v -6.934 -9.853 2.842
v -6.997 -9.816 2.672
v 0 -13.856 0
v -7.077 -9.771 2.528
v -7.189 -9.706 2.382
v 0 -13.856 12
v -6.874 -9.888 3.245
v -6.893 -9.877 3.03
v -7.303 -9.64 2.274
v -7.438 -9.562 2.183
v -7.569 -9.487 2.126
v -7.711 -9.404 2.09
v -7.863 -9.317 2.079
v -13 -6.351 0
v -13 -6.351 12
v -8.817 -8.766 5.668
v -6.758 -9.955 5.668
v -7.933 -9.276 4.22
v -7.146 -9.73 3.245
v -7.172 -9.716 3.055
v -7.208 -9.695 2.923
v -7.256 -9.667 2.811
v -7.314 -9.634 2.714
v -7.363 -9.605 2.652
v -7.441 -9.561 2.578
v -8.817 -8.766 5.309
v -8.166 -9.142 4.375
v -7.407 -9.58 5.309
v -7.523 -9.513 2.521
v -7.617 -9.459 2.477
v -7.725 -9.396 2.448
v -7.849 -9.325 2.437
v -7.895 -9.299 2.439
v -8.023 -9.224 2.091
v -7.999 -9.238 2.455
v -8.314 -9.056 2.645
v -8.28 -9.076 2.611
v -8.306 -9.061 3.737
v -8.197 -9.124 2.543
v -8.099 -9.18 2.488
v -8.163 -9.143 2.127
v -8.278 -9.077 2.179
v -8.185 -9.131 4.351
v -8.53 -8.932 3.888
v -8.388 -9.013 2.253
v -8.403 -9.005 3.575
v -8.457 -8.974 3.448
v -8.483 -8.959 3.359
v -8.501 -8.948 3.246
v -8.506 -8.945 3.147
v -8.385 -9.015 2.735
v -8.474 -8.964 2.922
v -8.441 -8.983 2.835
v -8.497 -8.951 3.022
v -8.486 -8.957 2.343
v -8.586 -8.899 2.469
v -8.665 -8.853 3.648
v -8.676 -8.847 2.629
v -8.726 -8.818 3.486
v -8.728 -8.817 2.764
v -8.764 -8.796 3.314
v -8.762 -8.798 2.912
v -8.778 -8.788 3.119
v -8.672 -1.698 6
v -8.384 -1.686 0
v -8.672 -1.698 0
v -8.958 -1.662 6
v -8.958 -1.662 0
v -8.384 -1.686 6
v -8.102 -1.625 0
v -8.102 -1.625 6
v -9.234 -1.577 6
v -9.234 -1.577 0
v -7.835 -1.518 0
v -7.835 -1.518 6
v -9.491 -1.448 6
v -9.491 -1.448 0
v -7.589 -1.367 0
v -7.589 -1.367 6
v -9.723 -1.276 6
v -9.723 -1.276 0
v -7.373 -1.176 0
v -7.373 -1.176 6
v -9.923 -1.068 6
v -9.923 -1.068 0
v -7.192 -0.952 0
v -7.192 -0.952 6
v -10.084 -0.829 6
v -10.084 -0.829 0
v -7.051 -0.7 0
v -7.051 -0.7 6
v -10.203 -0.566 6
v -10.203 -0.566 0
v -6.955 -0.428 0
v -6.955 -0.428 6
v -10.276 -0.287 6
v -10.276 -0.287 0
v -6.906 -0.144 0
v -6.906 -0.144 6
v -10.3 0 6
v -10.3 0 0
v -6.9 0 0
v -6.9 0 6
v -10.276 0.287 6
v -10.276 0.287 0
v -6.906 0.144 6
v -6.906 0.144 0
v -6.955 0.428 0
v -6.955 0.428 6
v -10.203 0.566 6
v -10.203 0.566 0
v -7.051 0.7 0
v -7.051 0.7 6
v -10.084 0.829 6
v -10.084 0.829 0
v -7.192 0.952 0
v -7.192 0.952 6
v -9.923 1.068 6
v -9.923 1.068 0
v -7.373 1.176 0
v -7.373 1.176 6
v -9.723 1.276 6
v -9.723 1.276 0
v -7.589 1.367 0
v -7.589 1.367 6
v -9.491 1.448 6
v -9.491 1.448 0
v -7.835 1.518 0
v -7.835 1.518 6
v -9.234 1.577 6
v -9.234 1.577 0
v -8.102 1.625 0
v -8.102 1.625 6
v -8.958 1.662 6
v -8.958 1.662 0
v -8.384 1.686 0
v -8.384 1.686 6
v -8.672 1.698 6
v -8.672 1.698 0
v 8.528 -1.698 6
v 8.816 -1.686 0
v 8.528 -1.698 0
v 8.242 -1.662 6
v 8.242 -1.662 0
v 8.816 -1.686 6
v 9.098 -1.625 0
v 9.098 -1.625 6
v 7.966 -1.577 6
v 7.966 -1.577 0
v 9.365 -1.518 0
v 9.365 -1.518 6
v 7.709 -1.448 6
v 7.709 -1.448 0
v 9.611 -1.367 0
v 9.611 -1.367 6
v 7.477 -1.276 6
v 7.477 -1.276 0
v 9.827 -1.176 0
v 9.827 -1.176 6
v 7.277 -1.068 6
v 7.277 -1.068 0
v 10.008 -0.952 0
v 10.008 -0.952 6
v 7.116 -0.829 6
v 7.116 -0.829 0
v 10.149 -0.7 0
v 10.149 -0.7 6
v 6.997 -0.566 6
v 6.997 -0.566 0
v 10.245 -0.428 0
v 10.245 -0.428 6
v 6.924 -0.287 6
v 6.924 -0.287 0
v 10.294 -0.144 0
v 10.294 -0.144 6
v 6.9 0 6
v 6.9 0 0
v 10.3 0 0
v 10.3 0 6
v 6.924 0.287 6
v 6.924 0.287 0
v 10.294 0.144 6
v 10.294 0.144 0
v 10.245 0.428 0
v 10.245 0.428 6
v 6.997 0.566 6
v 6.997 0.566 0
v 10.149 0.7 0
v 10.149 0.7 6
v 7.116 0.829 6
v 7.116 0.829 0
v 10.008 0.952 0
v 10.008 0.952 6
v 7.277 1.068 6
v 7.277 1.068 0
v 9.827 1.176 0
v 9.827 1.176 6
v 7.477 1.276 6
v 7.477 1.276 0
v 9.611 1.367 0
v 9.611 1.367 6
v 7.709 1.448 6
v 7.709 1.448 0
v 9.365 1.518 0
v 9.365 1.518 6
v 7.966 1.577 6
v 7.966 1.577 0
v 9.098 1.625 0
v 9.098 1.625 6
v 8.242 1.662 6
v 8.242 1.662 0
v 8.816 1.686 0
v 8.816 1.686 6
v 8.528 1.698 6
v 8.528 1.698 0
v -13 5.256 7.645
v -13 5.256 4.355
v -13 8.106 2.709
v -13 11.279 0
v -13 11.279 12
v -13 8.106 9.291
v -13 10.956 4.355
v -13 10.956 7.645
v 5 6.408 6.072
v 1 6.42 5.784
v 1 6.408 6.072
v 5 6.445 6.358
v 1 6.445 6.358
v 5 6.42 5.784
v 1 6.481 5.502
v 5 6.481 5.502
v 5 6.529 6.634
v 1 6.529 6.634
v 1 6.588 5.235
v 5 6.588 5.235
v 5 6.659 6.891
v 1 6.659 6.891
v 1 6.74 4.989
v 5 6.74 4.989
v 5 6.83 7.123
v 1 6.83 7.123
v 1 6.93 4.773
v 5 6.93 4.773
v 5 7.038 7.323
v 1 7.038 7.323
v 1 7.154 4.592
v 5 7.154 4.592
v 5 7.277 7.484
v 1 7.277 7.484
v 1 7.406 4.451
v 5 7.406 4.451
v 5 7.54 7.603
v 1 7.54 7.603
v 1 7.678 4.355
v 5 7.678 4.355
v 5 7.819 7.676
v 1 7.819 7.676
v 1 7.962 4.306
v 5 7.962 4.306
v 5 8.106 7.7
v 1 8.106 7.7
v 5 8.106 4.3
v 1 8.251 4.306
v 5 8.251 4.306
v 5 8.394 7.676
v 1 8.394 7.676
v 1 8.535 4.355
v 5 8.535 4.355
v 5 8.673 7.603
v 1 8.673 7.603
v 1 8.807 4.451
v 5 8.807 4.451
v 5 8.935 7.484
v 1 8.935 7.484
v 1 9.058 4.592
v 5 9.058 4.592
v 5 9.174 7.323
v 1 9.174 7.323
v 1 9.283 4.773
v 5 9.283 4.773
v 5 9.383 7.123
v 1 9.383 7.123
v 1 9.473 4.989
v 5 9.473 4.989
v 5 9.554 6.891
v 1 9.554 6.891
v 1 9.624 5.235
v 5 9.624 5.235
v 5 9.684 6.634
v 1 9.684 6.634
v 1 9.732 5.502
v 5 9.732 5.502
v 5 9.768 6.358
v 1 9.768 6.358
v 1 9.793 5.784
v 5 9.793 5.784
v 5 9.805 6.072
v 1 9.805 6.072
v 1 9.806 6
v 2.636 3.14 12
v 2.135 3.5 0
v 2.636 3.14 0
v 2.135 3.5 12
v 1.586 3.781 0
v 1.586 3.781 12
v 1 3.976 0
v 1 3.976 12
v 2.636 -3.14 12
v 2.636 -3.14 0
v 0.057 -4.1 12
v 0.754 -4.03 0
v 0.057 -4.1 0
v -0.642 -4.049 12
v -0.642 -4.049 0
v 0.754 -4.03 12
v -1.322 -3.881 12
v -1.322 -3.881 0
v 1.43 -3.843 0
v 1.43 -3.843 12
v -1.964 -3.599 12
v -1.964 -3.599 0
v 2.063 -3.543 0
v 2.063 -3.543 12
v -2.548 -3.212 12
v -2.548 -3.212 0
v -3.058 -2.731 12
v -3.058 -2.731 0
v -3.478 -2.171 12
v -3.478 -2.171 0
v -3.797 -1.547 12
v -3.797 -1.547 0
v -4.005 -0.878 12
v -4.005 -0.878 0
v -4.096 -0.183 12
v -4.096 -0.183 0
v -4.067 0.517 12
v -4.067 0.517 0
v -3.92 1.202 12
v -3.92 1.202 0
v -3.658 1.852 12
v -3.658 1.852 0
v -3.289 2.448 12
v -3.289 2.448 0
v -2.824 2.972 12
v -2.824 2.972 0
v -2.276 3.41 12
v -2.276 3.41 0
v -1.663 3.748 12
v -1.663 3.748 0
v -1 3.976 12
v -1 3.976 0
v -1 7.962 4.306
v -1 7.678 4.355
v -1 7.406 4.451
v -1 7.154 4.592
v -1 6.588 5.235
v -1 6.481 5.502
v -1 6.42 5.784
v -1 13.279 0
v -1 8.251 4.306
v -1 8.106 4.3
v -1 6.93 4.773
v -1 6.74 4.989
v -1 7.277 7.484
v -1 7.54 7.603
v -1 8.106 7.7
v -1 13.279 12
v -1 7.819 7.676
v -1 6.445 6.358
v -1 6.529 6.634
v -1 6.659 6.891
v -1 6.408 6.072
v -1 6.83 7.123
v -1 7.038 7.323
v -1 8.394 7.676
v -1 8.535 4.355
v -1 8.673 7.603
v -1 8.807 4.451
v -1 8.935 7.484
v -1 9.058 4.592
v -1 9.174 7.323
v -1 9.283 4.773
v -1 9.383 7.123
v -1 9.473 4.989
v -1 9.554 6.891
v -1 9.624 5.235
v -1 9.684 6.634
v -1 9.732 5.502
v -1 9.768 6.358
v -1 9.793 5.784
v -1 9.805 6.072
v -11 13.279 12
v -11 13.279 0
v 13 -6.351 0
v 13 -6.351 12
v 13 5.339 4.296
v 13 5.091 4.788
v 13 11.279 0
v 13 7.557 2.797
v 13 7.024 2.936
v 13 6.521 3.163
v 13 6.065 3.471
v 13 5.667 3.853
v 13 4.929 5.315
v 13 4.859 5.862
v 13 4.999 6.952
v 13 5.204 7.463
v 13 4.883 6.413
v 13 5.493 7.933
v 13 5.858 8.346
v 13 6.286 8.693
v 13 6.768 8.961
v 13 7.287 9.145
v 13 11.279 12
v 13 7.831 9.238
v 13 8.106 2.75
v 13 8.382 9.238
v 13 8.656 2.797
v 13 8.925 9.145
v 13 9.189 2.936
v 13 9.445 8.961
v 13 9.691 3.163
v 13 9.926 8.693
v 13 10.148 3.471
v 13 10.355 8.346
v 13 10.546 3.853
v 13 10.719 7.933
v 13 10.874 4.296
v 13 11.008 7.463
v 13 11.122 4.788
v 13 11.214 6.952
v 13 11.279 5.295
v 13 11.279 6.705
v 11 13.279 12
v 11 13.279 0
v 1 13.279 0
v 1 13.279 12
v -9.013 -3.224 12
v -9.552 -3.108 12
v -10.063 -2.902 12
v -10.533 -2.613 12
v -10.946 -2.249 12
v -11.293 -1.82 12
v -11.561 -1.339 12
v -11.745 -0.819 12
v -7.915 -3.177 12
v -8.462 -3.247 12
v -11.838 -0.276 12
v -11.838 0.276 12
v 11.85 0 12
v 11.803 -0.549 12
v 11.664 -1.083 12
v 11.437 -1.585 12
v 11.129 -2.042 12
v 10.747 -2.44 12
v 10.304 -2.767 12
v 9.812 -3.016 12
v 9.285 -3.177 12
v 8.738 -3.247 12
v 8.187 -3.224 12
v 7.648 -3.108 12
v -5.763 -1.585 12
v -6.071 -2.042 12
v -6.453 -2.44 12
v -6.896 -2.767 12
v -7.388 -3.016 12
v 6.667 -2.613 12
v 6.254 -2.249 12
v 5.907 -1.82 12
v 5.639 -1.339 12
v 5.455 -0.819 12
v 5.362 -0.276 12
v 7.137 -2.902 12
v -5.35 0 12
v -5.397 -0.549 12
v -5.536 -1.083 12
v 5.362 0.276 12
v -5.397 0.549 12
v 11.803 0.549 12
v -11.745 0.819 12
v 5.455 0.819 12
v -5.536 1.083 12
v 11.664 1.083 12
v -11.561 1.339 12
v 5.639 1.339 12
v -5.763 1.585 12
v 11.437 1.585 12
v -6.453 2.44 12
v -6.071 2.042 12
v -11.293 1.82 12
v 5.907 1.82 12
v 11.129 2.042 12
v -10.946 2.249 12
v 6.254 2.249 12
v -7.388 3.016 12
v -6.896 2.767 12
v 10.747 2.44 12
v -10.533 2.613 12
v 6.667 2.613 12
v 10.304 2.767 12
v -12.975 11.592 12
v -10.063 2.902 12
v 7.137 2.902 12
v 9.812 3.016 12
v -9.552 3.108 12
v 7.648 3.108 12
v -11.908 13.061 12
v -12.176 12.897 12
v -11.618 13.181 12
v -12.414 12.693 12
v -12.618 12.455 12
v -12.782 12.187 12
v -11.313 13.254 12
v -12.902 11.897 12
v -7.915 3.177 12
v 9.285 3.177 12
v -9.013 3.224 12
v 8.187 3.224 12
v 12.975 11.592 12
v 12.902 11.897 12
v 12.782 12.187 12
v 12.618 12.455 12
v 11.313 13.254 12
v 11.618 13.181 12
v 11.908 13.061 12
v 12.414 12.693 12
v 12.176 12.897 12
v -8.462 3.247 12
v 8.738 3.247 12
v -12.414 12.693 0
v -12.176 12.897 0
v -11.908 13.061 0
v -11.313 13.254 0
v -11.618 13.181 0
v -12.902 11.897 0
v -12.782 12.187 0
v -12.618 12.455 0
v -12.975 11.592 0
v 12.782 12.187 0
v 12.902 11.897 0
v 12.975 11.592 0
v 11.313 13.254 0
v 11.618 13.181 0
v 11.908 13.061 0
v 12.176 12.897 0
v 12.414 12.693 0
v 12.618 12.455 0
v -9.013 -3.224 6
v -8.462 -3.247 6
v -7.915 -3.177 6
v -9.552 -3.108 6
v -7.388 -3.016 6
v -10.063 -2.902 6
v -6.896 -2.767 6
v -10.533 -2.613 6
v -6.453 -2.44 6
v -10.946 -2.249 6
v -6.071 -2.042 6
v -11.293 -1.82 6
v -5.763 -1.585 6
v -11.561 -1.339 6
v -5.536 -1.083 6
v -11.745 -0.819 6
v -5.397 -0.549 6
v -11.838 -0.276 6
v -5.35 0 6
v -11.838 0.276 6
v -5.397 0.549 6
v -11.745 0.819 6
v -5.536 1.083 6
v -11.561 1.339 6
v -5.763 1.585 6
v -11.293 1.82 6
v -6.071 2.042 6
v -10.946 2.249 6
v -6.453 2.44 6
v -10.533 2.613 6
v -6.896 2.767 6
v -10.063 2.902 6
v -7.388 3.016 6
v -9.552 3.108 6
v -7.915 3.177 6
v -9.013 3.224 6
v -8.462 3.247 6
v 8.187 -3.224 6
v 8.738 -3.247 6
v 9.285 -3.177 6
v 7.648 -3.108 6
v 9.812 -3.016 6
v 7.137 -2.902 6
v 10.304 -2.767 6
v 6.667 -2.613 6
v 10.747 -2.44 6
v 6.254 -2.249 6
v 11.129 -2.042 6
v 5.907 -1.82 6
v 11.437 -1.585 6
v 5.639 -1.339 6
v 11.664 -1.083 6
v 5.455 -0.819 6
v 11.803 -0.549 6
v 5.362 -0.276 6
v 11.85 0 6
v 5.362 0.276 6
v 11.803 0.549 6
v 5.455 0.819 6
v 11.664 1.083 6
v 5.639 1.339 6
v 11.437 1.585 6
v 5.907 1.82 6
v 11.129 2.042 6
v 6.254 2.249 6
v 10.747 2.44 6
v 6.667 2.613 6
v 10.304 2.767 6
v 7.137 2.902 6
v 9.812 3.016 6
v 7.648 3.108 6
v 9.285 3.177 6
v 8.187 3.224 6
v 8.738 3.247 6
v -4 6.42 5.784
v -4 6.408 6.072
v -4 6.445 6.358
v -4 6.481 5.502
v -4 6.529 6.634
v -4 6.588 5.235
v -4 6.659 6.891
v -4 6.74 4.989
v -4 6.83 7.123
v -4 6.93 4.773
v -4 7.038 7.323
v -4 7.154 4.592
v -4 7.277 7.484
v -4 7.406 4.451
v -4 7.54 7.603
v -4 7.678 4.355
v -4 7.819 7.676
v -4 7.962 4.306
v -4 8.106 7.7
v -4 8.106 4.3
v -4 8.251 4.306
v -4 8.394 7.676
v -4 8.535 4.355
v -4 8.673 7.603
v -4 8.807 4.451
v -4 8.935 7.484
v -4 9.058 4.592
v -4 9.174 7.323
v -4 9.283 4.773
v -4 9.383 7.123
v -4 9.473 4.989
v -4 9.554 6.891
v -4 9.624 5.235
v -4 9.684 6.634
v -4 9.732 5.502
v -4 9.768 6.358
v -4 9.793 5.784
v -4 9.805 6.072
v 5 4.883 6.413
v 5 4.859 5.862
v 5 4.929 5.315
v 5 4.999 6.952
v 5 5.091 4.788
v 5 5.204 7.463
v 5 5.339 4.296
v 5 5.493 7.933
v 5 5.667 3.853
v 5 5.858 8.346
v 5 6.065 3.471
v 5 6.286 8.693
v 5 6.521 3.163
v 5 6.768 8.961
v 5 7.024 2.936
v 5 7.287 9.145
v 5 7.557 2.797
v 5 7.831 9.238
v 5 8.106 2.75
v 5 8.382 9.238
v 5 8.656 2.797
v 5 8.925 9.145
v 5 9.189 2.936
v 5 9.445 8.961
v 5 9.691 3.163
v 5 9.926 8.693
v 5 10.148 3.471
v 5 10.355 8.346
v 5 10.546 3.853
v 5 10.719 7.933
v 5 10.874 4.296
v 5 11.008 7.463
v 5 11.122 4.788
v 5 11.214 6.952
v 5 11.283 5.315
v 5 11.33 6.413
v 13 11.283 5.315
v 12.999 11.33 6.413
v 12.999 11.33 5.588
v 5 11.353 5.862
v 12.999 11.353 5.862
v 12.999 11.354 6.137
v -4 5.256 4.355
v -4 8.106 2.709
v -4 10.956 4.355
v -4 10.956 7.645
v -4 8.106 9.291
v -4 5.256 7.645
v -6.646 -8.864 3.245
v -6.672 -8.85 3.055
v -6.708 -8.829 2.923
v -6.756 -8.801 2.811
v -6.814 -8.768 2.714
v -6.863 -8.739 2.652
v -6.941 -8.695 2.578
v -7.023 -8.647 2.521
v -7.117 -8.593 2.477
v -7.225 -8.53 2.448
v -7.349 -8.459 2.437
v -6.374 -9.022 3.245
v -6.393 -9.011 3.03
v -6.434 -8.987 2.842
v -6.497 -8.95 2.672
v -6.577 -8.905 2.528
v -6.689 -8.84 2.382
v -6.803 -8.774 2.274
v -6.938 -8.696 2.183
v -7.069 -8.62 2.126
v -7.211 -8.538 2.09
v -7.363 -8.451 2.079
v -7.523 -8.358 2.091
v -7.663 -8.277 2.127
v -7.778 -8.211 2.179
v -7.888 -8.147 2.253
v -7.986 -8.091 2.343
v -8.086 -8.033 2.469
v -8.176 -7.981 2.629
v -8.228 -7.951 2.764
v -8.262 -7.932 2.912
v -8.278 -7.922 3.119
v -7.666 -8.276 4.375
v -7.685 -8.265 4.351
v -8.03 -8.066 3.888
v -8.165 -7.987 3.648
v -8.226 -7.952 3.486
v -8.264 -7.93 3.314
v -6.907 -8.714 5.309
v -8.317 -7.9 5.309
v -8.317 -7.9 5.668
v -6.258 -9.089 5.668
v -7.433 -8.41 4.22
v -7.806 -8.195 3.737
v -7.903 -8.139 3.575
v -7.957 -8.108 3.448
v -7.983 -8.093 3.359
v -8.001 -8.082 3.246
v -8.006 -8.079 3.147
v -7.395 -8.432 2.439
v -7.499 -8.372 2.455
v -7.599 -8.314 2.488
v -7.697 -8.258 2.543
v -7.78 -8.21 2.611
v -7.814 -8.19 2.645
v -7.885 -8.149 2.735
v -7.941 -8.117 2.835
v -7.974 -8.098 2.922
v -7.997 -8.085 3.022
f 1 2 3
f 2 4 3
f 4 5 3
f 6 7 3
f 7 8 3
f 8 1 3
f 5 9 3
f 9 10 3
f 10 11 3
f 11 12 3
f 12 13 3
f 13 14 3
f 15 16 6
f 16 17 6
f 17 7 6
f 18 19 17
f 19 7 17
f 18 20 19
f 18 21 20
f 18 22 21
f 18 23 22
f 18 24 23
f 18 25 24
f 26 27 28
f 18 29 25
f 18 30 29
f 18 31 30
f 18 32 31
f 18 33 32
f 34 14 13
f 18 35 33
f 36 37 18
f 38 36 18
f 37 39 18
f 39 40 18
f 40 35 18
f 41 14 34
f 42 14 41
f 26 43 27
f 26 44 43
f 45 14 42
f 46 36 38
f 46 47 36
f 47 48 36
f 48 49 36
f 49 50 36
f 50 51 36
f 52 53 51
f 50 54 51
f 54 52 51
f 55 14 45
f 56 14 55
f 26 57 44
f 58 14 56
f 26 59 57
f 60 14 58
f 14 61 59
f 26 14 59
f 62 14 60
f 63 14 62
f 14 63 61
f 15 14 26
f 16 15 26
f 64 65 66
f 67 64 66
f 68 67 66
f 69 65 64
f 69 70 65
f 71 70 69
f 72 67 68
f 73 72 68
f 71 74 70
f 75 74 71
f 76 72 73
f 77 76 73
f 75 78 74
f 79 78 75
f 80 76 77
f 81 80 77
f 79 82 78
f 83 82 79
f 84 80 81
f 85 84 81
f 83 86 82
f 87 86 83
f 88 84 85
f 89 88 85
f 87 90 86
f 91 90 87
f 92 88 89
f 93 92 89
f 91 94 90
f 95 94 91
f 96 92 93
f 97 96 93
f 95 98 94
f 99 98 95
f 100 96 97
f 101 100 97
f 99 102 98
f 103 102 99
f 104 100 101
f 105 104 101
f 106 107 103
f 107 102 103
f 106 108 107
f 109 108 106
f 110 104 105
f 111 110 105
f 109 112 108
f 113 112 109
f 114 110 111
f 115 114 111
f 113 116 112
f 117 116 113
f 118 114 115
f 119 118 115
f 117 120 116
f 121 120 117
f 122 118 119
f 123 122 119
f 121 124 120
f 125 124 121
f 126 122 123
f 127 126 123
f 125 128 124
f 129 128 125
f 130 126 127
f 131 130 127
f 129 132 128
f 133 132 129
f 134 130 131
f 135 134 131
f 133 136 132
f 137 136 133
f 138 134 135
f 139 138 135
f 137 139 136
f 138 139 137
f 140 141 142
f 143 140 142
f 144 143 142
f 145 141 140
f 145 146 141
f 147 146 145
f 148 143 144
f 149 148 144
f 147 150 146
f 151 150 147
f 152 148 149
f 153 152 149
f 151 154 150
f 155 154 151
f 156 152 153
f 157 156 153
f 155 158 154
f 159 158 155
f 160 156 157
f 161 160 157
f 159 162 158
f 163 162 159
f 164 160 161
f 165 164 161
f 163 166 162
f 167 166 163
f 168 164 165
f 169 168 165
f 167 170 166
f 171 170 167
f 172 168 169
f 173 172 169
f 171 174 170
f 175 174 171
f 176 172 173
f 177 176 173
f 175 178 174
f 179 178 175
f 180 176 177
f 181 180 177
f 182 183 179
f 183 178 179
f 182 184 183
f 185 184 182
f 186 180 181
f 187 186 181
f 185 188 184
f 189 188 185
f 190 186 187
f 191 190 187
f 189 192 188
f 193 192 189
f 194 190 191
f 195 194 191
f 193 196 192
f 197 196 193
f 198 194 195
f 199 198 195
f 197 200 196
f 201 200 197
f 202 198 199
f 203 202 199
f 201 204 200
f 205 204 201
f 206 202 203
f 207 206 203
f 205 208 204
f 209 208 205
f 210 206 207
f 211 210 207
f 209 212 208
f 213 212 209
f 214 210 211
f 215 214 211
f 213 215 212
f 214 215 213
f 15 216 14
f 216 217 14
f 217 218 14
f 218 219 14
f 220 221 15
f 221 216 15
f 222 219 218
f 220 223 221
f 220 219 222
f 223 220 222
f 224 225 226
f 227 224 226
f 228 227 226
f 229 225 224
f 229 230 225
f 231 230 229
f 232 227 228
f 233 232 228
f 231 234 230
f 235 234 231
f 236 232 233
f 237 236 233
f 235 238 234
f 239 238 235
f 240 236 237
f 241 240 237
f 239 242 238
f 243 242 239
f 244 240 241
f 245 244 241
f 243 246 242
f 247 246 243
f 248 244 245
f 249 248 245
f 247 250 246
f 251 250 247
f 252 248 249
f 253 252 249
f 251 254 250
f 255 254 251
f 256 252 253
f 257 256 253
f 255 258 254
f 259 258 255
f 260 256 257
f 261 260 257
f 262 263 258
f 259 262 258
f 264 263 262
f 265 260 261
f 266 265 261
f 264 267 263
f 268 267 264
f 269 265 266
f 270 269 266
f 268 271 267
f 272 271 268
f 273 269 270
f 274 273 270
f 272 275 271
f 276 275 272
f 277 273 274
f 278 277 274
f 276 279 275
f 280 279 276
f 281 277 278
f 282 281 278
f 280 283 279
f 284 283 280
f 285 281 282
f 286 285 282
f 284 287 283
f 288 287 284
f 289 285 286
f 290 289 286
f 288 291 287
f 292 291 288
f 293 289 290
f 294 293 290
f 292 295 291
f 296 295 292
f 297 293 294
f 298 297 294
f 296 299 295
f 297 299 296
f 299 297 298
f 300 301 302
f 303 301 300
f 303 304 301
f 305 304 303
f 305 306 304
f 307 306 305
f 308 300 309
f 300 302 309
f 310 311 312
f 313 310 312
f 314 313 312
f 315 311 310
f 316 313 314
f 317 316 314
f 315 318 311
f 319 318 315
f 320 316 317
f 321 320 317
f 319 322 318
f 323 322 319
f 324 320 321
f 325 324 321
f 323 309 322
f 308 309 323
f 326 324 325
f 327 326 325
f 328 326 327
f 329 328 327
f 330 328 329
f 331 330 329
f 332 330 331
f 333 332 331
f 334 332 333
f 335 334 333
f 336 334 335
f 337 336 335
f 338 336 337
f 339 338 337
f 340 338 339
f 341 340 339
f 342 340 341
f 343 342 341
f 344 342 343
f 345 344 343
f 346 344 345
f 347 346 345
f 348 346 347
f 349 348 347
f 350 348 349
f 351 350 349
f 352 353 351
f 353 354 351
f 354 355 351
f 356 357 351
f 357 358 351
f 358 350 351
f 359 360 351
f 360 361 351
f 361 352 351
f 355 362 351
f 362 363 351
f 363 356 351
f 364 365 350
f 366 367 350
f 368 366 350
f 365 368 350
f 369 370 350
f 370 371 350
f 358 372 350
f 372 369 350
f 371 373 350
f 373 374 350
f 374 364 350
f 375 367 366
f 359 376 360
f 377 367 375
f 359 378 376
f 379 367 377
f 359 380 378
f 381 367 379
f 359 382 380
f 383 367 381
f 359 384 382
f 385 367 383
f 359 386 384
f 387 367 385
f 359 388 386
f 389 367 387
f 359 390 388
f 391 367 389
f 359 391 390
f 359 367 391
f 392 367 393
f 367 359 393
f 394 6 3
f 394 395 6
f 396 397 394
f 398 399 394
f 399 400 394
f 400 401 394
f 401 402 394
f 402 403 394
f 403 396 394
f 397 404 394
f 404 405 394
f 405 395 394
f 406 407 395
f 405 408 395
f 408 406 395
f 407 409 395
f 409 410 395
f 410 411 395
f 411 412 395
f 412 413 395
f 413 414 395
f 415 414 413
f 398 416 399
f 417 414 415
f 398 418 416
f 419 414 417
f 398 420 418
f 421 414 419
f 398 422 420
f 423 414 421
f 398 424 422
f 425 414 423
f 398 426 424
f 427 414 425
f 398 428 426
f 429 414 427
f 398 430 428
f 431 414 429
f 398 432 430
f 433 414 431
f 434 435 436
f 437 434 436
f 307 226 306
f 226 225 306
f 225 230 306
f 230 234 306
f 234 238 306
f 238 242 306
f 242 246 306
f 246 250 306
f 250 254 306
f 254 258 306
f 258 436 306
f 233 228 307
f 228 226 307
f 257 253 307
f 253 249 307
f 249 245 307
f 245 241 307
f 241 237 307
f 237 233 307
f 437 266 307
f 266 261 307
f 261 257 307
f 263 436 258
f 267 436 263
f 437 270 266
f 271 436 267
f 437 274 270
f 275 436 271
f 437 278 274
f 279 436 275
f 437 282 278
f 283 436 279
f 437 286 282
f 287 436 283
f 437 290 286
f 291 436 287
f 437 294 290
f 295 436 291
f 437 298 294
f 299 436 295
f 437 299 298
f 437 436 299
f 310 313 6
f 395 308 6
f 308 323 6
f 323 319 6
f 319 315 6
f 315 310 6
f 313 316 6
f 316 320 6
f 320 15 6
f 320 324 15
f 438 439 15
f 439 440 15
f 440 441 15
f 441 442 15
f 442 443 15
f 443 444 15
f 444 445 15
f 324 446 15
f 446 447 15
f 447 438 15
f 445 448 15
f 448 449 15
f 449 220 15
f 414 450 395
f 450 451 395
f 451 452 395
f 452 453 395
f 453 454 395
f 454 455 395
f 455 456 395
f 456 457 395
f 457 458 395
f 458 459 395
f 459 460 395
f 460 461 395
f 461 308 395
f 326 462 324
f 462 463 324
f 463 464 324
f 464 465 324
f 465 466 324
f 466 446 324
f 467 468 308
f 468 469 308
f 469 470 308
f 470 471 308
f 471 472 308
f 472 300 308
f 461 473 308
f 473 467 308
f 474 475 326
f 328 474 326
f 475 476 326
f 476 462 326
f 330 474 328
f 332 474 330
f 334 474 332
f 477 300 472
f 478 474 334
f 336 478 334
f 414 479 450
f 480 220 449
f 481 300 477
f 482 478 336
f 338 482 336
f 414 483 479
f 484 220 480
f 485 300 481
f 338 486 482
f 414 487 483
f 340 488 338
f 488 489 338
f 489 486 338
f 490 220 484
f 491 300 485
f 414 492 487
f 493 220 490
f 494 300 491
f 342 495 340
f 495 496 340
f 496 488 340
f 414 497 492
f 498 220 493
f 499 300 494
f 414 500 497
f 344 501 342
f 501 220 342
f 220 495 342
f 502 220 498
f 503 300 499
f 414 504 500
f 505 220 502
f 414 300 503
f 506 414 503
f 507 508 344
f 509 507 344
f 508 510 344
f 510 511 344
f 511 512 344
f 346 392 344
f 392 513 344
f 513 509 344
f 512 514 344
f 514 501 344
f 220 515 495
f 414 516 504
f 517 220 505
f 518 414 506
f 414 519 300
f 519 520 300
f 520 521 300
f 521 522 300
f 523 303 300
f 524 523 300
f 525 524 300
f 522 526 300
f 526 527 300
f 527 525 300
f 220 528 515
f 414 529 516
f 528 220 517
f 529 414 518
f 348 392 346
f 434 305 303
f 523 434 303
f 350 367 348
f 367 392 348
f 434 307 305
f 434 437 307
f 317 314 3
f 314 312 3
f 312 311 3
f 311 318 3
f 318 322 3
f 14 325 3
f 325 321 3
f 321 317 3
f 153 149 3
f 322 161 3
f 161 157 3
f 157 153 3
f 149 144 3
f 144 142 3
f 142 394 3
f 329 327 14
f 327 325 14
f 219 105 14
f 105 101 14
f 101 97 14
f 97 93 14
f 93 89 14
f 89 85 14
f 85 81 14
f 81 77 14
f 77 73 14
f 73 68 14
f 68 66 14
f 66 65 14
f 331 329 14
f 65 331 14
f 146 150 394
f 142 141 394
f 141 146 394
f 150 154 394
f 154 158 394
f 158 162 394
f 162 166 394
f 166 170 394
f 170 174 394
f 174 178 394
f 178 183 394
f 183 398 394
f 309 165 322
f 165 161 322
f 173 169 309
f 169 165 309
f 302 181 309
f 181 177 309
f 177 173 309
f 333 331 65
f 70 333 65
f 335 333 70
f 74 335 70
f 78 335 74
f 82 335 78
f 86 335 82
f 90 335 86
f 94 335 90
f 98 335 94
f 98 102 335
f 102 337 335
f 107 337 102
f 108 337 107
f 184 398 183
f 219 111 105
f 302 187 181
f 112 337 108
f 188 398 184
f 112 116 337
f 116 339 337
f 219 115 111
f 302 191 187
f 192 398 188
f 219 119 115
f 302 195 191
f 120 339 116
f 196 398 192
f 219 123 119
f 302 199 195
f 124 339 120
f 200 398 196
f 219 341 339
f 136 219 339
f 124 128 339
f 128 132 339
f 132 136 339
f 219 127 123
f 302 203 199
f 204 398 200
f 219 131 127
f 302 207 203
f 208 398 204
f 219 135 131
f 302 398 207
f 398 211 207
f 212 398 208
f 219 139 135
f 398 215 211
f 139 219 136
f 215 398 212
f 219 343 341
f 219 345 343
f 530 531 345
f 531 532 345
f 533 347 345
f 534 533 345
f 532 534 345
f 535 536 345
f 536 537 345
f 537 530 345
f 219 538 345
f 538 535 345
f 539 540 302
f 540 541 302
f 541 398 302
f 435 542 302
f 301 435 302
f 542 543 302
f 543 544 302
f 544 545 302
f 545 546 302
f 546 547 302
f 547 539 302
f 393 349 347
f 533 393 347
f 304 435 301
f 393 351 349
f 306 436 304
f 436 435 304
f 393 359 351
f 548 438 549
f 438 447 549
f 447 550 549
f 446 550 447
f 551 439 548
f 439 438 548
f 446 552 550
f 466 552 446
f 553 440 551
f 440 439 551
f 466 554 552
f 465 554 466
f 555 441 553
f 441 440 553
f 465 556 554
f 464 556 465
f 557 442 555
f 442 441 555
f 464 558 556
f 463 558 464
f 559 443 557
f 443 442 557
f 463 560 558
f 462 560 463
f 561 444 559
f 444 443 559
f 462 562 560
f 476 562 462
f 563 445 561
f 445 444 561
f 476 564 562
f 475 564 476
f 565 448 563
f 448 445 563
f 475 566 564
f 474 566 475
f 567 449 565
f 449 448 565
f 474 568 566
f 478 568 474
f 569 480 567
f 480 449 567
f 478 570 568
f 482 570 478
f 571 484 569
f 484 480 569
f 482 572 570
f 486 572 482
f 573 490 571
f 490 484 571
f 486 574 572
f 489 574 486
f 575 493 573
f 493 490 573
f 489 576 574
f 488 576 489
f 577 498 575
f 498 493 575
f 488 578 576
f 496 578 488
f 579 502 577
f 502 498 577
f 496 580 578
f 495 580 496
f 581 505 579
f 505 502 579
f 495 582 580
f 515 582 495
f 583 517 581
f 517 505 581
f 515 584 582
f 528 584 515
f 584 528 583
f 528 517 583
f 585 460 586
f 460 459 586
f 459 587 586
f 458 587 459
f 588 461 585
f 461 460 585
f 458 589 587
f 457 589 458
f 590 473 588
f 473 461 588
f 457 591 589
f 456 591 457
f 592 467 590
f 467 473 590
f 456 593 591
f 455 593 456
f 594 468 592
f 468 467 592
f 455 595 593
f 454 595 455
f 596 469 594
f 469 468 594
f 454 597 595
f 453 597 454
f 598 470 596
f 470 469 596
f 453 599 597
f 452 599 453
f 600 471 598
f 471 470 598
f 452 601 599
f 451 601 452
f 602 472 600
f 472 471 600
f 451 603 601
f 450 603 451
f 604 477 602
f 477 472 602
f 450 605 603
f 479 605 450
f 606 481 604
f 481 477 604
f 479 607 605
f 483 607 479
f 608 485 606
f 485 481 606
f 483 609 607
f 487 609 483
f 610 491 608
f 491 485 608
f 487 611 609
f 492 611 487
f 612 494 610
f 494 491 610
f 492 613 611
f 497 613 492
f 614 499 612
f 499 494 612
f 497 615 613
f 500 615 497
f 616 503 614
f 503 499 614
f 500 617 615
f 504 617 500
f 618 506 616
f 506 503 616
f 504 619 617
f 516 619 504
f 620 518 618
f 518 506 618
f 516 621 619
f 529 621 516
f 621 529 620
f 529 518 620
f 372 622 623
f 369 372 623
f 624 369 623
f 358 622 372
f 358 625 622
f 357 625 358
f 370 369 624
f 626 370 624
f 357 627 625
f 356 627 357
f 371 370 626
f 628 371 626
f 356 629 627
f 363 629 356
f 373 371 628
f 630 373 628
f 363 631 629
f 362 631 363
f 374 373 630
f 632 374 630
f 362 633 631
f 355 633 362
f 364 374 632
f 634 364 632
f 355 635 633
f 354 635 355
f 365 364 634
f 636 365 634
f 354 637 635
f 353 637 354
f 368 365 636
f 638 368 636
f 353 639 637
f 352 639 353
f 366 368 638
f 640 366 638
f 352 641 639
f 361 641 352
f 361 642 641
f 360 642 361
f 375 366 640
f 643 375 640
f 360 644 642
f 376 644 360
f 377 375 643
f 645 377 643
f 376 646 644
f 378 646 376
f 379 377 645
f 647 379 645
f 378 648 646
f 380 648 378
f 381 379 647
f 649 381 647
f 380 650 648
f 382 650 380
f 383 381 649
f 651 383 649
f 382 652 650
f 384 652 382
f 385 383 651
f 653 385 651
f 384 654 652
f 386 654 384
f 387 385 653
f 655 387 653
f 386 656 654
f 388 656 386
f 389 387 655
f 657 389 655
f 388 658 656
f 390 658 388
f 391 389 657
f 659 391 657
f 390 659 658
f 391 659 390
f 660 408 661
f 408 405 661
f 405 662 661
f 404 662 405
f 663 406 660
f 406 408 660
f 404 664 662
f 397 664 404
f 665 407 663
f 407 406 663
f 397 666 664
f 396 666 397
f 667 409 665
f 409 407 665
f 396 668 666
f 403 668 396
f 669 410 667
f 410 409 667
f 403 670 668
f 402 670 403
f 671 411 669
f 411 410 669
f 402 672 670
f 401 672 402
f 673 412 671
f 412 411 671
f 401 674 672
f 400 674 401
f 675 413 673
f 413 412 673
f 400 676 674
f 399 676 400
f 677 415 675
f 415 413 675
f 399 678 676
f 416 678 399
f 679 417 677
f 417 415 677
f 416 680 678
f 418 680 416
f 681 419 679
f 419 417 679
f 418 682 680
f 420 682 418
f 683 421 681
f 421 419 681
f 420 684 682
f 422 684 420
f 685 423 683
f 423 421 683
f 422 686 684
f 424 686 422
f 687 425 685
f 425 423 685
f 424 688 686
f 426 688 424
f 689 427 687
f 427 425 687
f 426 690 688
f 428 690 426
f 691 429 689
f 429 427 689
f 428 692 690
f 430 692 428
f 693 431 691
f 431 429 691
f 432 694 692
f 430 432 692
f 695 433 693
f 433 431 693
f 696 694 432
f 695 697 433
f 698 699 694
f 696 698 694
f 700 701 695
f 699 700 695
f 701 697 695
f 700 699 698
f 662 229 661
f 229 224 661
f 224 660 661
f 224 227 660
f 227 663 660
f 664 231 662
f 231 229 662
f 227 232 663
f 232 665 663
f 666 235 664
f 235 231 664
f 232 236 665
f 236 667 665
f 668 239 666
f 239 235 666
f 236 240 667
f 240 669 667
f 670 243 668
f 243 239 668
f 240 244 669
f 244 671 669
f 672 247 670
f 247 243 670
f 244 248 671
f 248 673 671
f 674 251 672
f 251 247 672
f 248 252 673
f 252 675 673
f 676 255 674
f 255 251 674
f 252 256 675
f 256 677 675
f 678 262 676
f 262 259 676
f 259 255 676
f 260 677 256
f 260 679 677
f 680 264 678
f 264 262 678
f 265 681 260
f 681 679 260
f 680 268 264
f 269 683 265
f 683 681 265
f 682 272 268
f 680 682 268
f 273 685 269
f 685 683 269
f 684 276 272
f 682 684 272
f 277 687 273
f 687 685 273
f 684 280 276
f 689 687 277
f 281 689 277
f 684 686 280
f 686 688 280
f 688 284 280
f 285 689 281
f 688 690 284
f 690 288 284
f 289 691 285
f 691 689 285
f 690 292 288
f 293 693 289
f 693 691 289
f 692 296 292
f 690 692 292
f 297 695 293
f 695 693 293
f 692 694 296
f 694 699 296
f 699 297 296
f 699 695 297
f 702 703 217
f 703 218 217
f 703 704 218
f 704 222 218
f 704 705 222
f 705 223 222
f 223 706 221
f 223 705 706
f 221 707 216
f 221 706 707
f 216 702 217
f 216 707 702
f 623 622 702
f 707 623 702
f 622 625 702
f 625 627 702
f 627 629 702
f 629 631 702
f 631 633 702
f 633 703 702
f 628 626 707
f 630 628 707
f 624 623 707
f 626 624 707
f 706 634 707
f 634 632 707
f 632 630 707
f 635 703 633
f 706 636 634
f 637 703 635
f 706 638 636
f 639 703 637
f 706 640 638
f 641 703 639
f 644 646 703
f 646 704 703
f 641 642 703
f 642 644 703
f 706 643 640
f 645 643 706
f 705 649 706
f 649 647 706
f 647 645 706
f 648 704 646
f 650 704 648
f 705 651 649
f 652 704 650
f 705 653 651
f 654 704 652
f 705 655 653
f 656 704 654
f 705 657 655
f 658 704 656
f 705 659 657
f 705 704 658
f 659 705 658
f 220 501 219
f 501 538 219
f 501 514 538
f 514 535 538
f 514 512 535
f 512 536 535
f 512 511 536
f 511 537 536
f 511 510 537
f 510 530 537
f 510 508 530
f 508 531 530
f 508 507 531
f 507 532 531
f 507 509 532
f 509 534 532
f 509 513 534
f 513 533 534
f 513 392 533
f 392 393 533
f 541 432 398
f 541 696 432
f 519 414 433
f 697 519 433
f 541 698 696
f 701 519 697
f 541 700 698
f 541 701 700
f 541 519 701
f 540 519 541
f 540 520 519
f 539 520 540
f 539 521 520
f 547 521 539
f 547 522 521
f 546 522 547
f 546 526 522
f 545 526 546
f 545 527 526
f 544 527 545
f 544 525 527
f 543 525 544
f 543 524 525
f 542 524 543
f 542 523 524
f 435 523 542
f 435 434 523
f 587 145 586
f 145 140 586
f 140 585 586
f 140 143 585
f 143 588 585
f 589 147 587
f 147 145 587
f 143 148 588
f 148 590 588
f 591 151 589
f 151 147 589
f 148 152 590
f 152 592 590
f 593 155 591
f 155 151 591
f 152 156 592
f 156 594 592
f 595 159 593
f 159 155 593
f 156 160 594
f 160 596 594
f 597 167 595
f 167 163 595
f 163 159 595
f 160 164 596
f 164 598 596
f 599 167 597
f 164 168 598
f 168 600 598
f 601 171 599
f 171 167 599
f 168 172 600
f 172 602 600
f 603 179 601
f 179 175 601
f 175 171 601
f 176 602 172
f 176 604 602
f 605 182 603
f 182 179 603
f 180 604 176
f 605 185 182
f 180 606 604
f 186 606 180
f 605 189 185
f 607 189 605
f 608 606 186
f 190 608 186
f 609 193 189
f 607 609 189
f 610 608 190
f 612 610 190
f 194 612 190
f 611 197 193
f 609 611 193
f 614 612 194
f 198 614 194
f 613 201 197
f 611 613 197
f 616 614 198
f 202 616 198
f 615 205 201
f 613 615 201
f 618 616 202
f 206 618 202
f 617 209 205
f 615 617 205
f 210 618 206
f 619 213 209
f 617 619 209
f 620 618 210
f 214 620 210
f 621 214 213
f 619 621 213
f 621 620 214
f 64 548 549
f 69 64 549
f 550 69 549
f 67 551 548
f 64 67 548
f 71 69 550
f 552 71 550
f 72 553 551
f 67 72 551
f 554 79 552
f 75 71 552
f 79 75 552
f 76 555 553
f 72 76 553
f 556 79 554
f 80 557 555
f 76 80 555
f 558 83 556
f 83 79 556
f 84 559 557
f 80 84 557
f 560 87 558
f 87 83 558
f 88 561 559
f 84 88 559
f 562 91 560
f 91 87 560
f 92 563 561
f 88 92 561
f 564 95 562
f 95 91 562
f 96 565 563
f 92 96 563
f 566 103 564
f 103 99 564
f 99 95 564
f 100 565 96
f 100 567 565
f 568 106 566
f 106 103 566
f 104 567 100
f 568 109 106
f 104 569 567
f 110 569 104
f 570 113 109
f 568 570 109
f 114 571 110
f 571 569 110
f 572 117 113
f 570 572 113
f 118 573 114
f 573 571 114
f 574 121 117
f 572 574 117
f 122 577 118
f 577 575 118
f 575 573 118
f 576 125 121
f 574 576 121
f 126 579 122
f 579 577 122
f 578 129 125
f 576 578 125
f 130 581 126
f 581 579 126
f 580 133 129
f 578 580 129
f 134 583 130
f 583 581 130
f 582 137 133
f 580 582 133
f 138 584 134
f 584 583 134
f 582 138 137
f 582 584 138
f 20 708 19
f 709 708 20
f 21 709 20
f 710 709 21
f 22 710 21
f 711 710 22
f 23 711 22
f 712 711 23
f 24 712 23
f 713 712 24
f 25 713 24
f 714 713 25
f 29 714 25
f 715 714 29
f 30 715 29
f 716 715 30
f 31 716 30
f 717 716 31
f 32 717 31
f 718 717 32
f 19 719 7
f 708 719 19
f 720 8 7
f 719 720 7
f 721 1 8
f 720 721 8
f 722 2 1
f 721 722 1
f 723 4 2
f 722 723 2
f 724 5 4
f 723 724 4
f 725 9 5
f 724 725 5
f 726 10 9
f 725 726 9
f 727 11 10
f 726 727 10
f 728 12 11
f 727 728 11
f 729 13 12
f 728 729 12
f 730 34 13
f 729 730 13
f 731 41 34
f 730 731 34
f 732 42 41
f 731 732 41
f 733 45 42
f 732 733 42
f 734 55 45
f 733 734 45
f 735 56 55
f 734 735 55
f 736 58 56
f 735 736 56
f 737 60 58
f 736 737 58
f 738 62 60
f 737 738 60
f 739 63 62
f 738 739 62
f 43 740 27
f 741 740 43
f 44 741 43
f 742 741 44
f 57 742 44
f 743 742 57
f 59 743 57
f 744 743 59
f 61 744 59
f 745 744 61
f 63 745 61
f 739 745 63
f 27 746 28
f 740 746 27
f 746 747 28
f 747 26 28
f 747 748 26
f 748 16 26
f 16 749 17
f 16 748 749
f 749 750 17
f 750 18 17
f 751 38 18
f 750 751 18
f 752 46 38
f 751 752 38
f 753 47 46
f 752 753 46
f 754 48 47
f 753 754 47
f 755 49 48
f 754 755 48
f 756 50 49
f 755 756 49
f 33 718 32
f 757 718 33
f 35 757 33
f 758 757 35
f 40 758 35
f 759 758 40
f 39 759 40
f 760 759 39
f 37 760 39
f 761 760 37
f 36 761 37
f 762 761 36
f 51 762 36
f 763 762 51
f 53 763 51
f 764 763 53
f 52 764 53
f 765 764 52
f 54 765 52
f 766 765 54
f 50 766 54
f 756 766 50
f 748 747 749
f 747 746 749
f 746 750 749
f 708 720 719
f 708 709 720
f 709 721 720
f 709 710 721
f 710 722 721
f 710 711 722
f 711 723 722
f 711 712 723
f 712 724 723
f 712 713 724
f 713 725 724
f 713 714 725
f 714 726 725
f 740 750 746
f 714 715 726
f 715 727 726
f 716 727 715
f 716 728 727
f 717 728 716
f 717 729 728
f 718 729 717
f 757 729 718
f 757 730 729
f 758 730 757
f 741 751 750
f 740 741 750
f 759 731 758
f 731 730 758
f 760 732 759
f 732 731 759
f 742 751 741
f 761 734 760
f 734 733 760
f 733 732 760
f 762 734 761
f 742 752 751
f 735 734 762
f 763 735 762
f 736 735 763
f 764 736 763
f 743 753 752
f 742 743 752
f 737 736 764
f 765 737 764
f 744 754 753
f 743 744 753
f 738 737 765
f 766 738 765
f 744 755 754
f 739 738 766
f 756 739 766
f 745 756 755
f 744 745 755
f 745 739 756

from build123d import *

# Parameters (mm, degrees)
BOSS_EXTRUDE1_DEPTH            = 12
SKETCH41_R                     = 1.7
CUT_EXTRUDE7_DEPTH             = 18
CBORE_FOR_M3_SHCS1_D           = 3.4
CBORE_FOR_M3_SHCS1_CBORE_D     = 6.5
CBORE_FOR_M3_SHCS1_CBORE_DEPTH = 3
F_3DSKETCH3_START              = 9
F_3DSKETCH3_OUTLINE_R          = 3.25
F_3DSKETCH3_OUTLINE_R_2        = 1.7
F_3DSKETCH3_DEPTH              = 3
CUT_EXTRUDE10_DEPTH            = 15
CUT_EXTRUDE10_DEPTH_BACK       = 15
SKETCH52_R                     = 1.7
SKETCH58_R                     = 3.25
CUT_EXTRUDE11_DEPTH            = 8
CUT_EXTRUDE12_DEPTH            = 4
CUT_EXTRUDE12_DEPTH_BACK       = 6
FILLET1_R                      = 2
SKETCH61_R                     = 3.25
CUT_EXTRUDE13_DEPTH            = 6
CUT_EXTRUDE14_DEPTH            = 1


# Read off the part's stored shape, not the designer's step: 3DSketch3
with BuildPart() as part:
    # Sketch1 → Boss-Extrude1 (new body)
    with BuildSketch(Plane(origin=(0, 0, 0), x_dir=(0, 1, 0), z_dir=(0, 0, 1))):
        with BuildLine():
            Line((-6.350852961, -13), (13.279056191, -13))
            Line((13.279056191, -13), (13.279056191, -1))
            Line((13.279056191, -1), (3.97617907, -1))
            ThreePointArc((3.97617907, -1), (3.650947901, -1.865631106), (3.14, -2.636361129))
            Line((3.14, -2.636361129), (-3.14, -2.636361129))
            ThreePointArc((-3.14, -2.636361129), (-3.852531635, -1.402854233), (-4.1, 0))
            ThreePointArc((-4.1, 0), (-0.503818326, 4.06892702), (3.97617907, 1))
            Line((3.97617907, 1), (13.279056191, 1))
            Line((13.279056191, 1), (13.279056191, 13))
            Line((13.279056191, 13), (-6.350852961, 13))
            Line((-6.350852961, 13), (-13.856406461, 0))
            Line((-13.856406461, 0), (-6.350852961, -13))
        make_face()
    extrude(amount=BOSS_EXTRUDE1_DEPTH)

    # Sketch41 → Cut-Extrude7 (cut)
    with BuildSketch(Plane(origin=(0, 0, 0), x_dir=(0, 1, 0), z_dir=(0, 0, 1))):
        with Locations(Location((0, 8.6, 0), (0, 0, 270))):
            Circle(SKETCH41_R)
        with Locations(Location((0, -8.6, 0), (0, 0, 270))):
            Circle(SKETCH41_R)
    extrude(amount=CUT_EXTRUDE7_DEPTH, mode=Mode.SUBTRACT)

    # CBORE for M3 SHCS1 (through all)
    with Locations(Plane(origin=(-8.6, 0, 12), x_dir=(1, 0, 0), z_dir=(0, 0, 1))):
        with Locations((0, 0)):
            CounterBoreHole(CBORE_FOR_M3_SHCS1_D / 2, CBORE_FOR_M3_SHCS1_CBORE_D / 2, CBORE_FOR_M3_SHCS1_CBORE_DEPTH)

    # 3DSketch3 outline → 3DSketch3 (cut)
    with BuildSketch(Plane.XY.offset(F_3DSKETCH3_START)):
        with Locations((8.6, 0)):
            Circle(F_3DSKETCH3_OUTLINE_R)
        with Locations((8.6, 0)):
            Circle(F_3DSKETCH3_OUTLINE_R_2, mode=Mode.SUBTRACT)
    extrude(amount=F_3DSKETCH3_DEPTH, mode=Mode.SUBTRACT)

    # Sketch52 → Cut-Extrude10 (cut, two sides: drawn at the far end of the back side and taken through both)
    with BuildSketch(Plane.YZ.offset(-1).offset(-CUT_EXTRUDE10_DEPTH_BACK)):
        with Locations((8.106406461, 6)):
            Circle(SKETCH52_R)
    extrude(amount=CUT_EXTRUDE10_DEPTH + CUT_EXTRUDE10_DEPTH_BACK, mode=Mode.SUBTRACT)

    # Sketch58 → Cut-Extrude11 (cut)
    with BuildSketch(Plane.YZ.offset(13)):
        with Locations(Location((8.106406461, 6, 0), (0, 0, 270))):
            Circle(SKETCH58_R)
    extrude(amount=-CUT_EXTRUDE11_DEPTH, mode=Mode.SUBTRACT)

    # Sketch60 → Cut-Extrude12 (cut, two sides: drawn at the far end of the back side and taken through both)
    with BuildSketch(Plane.YZ.offset(-8).offset(-CUT_EXTRUDE12_DEPTH_BACK)):
        Polygon((8.106406461, 2.709103466), (10.956406461, 4.354551733), (10.956406461, 7.645448267), (8.106406461, 9.290896534), (5.256406461, 7.645448267), (5.256406461, 4.354551733), align=None)
    extrude(amount=CUT_EXTRUDE12_DEPTH + CUT_EXTRUDE12_DEPTH_BACK, mode=Mode.SUBTRACT)

    # Fillet1
    # the kernel refuses this fillet: 2 mm, written as the material it takes off along each edge
    with BuildSketch(Plane(origin=(13, 13.279056191, -5), x_dir=(0, -1, 0), z_dir=(0, 0, 1)), Plane(origin=(-13, 13.279056191, -5), x_dir=(1, 0, 0), z_dir=(0, 0, 1))) as fillet1_piece_1:
        with BuildLine():
            CenterArc((FILLET1_R, -FILLET1_R), FILLET1_R, 90, 90)
            Line((0, -FILLET1_R), (0, 0))
            Line((0, 0), (FILLET1_R, 0))
        make_face()
    extrude(amount=22, mode=Mode.SUBTRACT)

    # Sketch61 → Cut-Extrude13 (cut)
    with BuildSketch(Plane(origin=(0, 0, 12), x_dir=(0, 1, 0), z_dir=(0, 0, 1))):
        with Locations(Location((0, 8.6, 0), (0, 0, 270))):
            Circle(SKETCH61_R)
        with Locations(Location((0, -8.6, 0), (0, 0, 270))):
            Circle(SKETCH61_R)
    extrude(amount=-CUT_EXTRUDE13_DEPTH, mode=Mode.SUBTRACT)

    # Sketch62 → Cut-Extrude14 (cut)
    with BuildSketch(Plane(origin=(-6, -10.392304845, 0), x_dir=(-0.8660254037844386, 0.5000000000000001, 0), z_dir=(-0.5000000000000001, -0.8660254037844386, 0))):
        with BuildLine():
            Line((1.32365953, -3.245174166), (1.009556966, -3.245174166))
            add(Edge.make_bspline(
                [(1.009556966, -3.245174166), (1.011604119, -3.203503278), (1.015624673, -3.121662763), (1.034452962, -3.002338857), (1.061393839, -2.888284058), (1.099485293, -2.780414144), (1.146791571, -2.677775337), (1.203521598, -2.580775321), (1.270715449, -2.489784132), (1.346922183, -2.405645289), (1.429690822, -2.328457718), (1.518996761, -2.261802476), (1.612841789, -2.205484804), (1.710941188, -2.158403562), (1.814401751, -2.123063716), (1.922284609, -2.096842077), (2.035063745, -2.081065731), (2.111903767, -2.079369946), (2.150983248, -2.078507499)],
                knots=[0, 0, 0, 0, 1.10065271, 2.161652631, 3.183658789, 4.190468796, 5.17591951, 6.163126047, 7.15150782, 8.156236427, 9.156009102, 10.134482811, 11.092018607, 12.041330605, 13.001268258, 13.972401359, 14.968799086, 16, 16, 16, 16], degree=3))
            add(Edge.make_bspline(
                [(2.150983248, -2.078507499), (2.189361322, -2.079405955), (2.264772866, -2.08117139), (2.374834881, -2.096332419), (2.479612175, -2.120078011), (2.578899942, -2.153393427), (2.671906006, -2.198177855), (2.759329051, -2.251975393), (2.842209862, -2.314195225), (2.916816645, -2.387449038), (2.985324725, -2.465651423), (3.04442698, -2.549139326), (3.095040143, -2.635368612), (3.137227823, -2.724996814), (3.168283962, -2.818867842), (3.19186217, -2.915615045), (3.205189584, -3.016239856), (3.207235007, -3.084346411), (3.208274914, -3.118972242)],
                knots=[0, 0, 0, 0, 1.111607364, 2.184268762, 3.212621178, 4.221274766, 5.211760367, 6.196651075, 7.1921475, 8.207485113, 9.220403448, 10.201281604, 11.166441695, 12.114753415, 13.065576456, 14.026450734, 14.996634279, 16, 16, 16, 16], degree=3))
            add(Edge.make_bspline(
                [(3.208274914, -3.118972242), (3.206588269, -3.167722052), (3.203244578, -3.26436618), (3.174388875, -3.406570537), (3.129806778, -3.544475597), (3.075733749, -3.655454649), (3.021113181, -3.744431542), (2.972933386, -3.818347183), (2.915281033, -3.8971736), (2.84868362, -3.981704709), (2.774145813, -4.072199079), (2.691131146, -4.168693845), (2.599005455, -4.27016415), (2.534347273, -4.339469963), (2.500843023, -4.375382499)],
                knots=[0, 0, 0, 0, 1.184203166, 2.347625244, 3.513805382, 4.700623107, 5.337941753, 6.051866363, 6.845199593, 7.711357327, 8.668078039, 9.695487809, 10.805859518, 12, 12, 12, 12], degree=3))
            Line((2.500843023, -4.375382499), (1.625141902, -5.30927673))
            Line((1.625141902, -5.30927673), (3.253146709, -5.30927673))
            Line((3.253146709, -5.30927673), (3.253146709, -5.668251089))
            Line((3.253146709, -5.668251089), (0.874941581, -5.668251089))
            Line((0.874941581, -5.668251089), (2.232313376, -4.21973346))
            add(Edge.make_bspline(
                [(2.232313376, -4.21973346), (2.265361263, -4.185235154), (2.32883949, -4.118970967), (2.418622067, -4.022228007), (2.499261055, -3.932478466), (2.571278448, -3.849891918), (2.633111953, -3.77326035), (2.687984185, -3.705065647), (2.731949776, -3.642311196), (2.779665172, -3.569570582), (2.825879153, -3.480758265), (2.865591509, -3.372224576), (2.889806358, -3.260497323), (2.892711193, -3.184995286), (2.89417235, -3.147017114)],
                knots=[0, 0, 0, 0, 1.329631726, 2.553950428, 3.673215718, 4.687767853, 5.603093632, 6.413772471, 7.123043292, 7.734684054, 8.834405432, 9.900288307, 10.943827018, 12, 12, 12, 12], degree=3))
            add(Edge.make_bspline(
                [(2.89417235, -3.147017114), (2.893536608, -3.123135716), (2.892283682, -3.076070065), (2.881225984, -3.007064306), (2.864515478, -2.940499493), (2.84057022, -2.876170874), (2.80896348, -2.814725221), (2.7704901, -2.756087741), (2.726100037, -2.699398776), (2.674748768, -2.646245478), (2.618337248, -2.597564273), (2.558742998, -2.554440187), (2.495692894, -2.518401076), (2.429452772, -2.488857579), (2.360207302, -2.465682198), (2.287822557, -2.449623619), (2.212498541, -2.439541135), (2.161065045, -2.438176963), (2.134857446, -2.437481858)],
                knots=[0, 0, 0, 0, 0.991446411, 1.95395049, 2.89581595, 3.838931463, 4.798493298, 5.75982156, 6.748411868, 7.785213223, 8.824556874, 9.840280684, 10.836137867, 11.835679398, 12.848801643, 13.863922112, 14.911575587, 16, 16, 16, 16], degree=3))
            add(Edge.make_bspline(
                [(2.134857446, -2.437481858), (2.107486614, -2.43819689), (2.053734817, -2.439601095), (1.974815784, -2.449423759), (1.899530007, -2.4663696), (1.827688104, -2.489546274), (1.759168518, -2.519004823), (1.694304474, -2.555696568), (1.633241585, -2.599480061), (1.575865062, -2.649120617), (1.523001082, -2.704388218), (1.476554207, -2.765998181), (1.435970192, -2.832825597), (1.400560959, -2.904690147), (1.371805269, -2.982243927), (1.349832118, -3.065211632), (1.332445272, -3.153233014), (1.326636751, -3.214018099), (1.32365953, -3.245174166)],
                knots=[0, 0, 0, 0, 1.031018746, 2.02475058, 2.990194455, 3.934040569, 4.864654155, 5.795059489, 6.735614925, 7.690564532, 8.649604399, 9.611025574, 10.590972636, 11.591080095, 12.624614302, 13.701020113, 14.821632451, 16, 16, 16, 16], degree=3))
        make_face()
    extrude(amount=-CUT_EXTRUDE14_DEPTH, mode=Mode.SUBTRACT)


solid = part.part
